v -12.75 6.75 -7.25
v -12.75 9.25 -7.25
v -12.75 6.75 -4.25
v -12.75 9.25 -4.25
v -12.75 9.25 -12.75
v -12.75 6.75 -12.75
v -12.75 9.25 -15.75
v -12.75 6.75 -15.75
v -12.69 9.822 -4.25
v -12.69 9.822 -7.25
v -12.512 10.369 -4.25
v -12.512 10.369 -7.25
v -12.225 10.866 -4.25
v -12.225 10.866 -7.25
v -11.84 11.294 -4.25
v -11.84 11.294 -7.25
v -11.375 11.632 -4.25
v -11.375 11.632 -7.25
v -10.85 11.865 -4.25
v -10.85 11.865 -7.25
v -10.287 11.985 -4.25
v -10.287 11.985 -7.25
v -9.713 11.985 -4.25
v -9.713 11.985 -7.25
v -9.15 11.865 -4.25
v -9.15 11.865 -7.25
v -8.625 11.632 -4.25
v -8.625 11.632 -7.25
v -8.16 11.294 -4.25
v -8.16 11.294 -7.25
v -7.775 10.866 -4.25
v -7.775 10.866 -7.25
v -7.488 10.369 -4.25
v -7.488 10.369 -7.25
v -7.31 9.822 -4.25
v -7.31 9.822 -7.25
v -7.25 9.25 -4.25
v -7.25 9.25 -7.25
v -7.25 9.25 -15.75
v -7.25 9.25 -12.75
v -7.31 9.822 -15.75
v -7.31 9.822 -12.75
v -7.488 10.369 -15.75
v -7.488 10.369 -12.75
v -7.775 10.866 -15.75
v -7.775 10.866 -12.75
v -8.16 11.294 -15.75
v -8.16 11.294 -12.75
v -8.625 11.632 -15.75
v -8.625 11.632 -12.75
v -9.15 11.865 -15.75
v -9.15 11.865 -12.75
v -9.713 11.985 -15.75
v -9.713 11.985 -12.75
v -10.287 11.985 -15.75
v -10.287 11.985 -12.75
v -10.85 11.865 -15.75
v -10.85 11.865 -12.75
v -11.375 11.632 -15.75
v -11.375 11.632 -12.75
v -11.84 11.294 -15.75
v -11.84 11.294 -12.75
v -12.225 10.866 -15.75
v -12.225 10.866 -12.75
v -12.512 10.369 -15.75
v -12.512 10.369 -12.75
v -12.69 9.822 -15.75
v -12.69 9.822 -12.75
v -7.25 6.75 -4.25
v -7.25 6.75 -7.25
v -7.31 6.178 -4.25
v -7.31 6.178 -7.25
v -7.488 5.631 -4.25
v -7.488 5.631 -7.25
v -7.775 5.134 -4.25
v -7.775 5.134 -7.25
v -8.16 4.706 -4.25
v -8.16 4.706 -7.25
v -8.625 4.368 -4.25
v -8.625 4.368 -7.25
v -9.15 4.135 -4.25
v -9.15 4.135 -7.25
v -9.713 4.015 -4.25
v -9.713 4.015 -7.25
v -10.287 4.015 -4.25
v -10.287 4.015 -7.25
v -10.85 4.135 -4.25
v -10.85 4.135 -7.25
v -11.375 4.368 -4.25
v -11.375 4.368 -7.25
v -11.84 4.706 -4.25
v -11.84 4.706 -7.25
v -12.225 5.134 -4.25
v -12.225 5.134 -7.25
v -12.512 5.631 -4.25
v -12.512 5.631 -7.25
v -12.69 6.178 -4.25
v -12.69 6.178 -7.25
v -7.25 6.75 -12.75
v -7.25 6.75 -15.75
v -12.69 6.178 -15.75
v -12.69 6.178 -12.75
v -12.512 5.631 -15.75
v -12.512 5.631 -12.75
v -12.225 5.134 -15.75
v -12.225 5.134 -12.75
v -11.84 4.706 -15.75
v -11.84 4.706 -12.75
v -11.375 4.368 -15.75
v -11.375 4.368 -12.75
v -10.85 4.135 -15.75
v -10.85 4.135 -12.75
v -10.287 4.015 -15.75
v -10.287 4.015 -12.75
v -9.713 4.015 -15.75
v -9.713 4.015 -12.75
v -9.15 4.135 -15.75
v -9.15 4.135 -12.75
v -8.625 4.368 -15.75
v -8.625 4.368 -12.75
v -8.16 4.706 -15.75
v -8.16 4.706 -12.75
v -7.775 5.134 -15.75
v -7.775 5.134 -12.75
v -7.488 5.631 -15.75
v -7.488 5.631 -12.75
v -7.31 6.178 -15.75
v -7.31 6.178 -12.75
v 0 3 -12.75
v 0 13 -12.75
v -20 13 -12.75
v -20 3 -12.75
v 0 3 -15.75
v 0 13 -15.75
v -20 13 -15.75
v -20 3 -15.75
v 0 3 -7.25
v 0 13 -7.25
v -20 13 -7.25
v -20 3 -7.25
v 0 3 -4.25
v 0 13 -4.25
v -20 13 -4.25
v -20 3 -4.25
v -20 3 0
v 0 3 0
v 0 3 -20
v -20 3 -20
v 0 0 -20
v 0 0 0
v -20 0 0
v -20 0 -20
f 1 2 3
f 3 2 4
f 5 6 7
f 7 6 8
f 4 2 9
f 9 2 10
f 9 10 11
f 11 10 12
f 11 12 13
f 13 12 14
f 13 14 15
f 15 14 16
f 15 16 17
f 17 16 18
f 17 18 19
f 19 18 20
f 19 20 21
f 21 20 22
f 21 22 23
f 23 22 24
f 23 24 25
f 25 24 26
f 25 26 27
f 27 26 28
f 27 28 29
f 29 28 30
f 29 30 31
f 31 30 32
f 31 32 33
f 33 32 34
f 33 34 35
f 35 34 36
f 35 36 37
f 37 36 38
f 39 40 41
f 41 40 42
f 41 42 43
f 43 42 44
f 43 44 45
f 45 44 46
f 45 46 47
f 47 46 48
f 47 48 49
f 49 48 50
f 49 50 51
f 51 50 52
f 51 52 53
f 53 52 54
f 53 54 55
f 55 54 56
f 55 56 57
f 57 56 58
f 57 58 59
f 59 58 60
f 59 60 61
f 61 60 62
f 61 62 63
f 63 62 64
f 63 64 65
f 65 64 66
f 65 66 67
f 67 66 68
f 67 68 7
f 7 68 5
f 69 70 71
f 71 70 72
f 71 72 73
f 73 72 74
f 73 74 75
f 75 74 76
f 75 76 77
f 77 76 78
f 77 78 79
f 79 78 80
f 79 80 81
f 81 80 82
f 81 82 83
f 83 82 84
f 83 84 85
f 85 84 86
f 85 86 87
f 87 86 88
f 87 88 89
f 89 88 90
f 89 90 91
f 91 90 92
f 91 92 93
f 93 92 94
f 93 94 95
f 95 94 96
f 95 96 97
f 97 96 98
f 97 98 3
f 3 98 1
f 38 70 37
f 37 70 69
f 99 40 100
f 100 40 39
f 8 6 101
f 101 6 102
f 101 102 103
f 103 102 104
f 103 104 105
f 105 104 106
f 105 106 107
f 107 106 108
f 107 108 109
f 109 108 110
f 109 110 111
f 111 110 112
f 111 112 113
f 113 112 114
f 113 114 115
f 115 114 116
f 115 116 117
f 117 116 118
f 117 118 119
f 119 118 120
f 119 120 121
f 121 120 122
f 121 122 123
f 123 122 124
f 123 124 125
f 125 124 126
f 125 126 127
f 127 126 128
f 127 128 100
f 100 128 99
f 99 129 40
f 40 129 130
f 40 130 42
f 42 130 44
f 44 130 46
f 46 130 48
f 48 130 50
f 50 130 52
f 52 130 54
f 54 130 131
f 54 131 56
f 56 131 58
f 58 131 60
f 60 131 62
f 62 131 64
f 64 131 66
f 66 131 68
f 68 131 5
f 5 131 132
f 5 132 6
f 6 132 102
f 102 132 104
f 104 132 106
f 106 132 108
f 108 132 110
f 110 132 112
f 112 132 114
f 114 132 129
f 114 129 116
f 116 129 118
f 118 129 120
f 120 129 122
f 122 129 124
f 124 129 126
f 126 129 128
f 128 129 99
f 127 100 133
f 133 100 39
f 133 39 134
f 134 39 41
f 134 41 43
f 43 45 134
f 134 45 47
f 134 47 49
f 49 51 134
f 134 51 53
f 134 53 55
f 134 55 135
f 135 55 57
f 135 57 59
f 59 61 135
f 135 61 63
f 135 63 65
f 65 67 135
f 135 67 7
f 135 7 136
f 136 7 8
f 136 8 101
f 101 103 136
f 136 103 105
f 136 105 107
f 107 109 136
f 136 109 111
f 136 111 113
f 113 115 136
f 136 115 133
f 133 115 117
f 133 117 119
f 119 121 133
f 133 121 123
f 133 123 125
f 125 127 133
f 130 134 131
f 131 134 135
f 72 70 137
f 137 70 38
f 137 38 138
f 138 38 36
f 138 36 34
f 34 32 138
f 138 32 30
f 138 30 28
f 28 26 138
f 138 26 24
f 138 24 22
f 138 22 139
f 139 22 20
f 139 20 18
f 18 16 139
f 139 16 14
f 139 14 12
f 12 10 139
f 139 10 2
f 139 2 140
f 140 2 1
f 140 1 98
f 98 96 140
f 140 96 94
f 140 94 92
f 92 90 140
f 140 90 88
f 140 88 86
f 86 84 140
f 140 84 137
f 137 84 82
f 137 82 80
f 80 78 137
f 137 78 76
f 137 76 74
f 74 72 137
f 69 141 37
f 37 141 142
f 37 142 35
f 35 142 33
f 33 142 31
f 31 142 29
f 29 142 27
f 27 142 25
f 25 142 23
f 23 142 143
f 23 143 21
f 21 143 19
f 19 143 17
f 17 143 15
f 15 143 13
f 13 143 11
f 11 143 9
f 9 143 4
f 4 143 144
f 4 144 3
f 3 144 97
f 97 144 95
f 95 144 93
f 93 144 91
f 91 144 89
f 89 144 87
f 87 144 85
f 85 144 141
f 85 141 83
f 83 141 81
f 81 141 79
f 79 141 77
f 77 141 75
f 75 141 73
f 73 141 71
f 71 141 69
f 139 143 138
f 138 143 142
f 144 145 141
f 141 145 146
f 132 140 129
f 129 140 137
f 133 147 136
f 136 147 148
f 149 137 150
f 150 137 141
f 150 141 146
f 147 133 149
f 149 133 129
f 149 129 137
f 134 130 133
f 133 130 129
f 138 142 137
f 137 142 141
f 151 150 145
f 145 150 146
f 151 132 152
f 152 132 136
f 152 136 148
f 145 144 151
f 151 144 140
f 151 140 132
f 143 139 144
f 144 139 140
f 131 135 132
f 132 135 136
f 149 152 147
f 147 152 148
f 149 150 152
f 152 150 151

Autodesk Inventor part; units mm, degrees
ref_plane "YZ Plane" through (0, 0, 0) normal (1, 0, 0) x (0, 1, 0)
ref_plane "XZ Plane" through (0, 0, 0) normal (0, 1, 0) x (-1, 0, 0)
ref_plane "XY Plane" through (0, 0, 0) normal (0, 0, 1) x (1, 0, 0)
sketch "Sketch1" plane through (0, 0, 0) normal (0, 1, 0) x (-1, 0, 0)
  line L0 (0, 0) -> (20, 0)
  line L1 (20, 0) -> (20, -20)
  line L2 (20, -20) -> (0, -20)
  line L3 (0, -20) -> (0, 0)
  dimension "d0" = 20
  dimension "d1" = 20
extrude "Extrusion1" add sketch "Sketch1" along normal blind 3
sketch "Sketch2" plane through (0, 3, 0) normal (0, 1, 0) x (1, 0, 0)
  line L0 (-20, 20) -> (-20, 0) projected
  line L1 (0, 0) -> (0, 20) projected
  line L2 (-20, 4.25) -> (0, 4.25)
  line L3 (0, 4.25) -> (0, 7.25)
  line L4 (0, 7.25) -> (-20, 7.25)
  line L5 (-20, 7.25) -> (-20, 4.25)
  line L6 (-20, 15.75) -> (0, 15.75)
  line L7 (0, 15.75) -> (0, 12.75)
  line L8 (0, 12.75) -> (-20, 12.75)
  line L9 (-20, 12.75) -> (-20, 15.75)
  line L10 (0, 20) -> (-20, 20) projected
  point P0 (0, 15.75)
  point P1 (0, 4.25)
  dimension "d4" = 3
  dimension "d5" = 3
  dimension "d6" = 5.5
  dimension "d7" = 4.25
extrude "Extrusion2" add sketch "Sketch2" along normal blind 10 contours L6 L1 L8 L0 | L4 L1 L2 L0
sketch "Sketch3" plane through (-20, 3, -4.25) normal (0, 0, 1) x (1, 0, 0)
  line L0 (10, 6.25) -> (10, 3.75) construction
  line L1 (0, 10) -> (20, 10) projected
  line L2 (7.25, 6.25) -> (7.25, 3.75)
  line L3 (12.75, 3.75) -> (12.75, 6.25)
  arc A0 (12.75, 6.25) -> (7.25, 6.25) centre (10, 6.25) ccw
  arc A1 (7.25, 3.75) -> (12.75, 3.75) centre (10, 3.75) ccw
  line L4 (0, 0) -> (0, 10) projected
  point P0 (20, -3)
  point P1 (10, 5)
  point P2 (10, 1)
  point P3 (10, 9)
  dimension "d10" = 5.5
  dimension "d11" = 10
  dimension "d12" = 8
  dimension "d13" = 9
extrude "Extrusion3" cut sketch "Sketch3" against normal blind 16.75
properties part number "LegStablizer" material "Thermoplastic Resin"
